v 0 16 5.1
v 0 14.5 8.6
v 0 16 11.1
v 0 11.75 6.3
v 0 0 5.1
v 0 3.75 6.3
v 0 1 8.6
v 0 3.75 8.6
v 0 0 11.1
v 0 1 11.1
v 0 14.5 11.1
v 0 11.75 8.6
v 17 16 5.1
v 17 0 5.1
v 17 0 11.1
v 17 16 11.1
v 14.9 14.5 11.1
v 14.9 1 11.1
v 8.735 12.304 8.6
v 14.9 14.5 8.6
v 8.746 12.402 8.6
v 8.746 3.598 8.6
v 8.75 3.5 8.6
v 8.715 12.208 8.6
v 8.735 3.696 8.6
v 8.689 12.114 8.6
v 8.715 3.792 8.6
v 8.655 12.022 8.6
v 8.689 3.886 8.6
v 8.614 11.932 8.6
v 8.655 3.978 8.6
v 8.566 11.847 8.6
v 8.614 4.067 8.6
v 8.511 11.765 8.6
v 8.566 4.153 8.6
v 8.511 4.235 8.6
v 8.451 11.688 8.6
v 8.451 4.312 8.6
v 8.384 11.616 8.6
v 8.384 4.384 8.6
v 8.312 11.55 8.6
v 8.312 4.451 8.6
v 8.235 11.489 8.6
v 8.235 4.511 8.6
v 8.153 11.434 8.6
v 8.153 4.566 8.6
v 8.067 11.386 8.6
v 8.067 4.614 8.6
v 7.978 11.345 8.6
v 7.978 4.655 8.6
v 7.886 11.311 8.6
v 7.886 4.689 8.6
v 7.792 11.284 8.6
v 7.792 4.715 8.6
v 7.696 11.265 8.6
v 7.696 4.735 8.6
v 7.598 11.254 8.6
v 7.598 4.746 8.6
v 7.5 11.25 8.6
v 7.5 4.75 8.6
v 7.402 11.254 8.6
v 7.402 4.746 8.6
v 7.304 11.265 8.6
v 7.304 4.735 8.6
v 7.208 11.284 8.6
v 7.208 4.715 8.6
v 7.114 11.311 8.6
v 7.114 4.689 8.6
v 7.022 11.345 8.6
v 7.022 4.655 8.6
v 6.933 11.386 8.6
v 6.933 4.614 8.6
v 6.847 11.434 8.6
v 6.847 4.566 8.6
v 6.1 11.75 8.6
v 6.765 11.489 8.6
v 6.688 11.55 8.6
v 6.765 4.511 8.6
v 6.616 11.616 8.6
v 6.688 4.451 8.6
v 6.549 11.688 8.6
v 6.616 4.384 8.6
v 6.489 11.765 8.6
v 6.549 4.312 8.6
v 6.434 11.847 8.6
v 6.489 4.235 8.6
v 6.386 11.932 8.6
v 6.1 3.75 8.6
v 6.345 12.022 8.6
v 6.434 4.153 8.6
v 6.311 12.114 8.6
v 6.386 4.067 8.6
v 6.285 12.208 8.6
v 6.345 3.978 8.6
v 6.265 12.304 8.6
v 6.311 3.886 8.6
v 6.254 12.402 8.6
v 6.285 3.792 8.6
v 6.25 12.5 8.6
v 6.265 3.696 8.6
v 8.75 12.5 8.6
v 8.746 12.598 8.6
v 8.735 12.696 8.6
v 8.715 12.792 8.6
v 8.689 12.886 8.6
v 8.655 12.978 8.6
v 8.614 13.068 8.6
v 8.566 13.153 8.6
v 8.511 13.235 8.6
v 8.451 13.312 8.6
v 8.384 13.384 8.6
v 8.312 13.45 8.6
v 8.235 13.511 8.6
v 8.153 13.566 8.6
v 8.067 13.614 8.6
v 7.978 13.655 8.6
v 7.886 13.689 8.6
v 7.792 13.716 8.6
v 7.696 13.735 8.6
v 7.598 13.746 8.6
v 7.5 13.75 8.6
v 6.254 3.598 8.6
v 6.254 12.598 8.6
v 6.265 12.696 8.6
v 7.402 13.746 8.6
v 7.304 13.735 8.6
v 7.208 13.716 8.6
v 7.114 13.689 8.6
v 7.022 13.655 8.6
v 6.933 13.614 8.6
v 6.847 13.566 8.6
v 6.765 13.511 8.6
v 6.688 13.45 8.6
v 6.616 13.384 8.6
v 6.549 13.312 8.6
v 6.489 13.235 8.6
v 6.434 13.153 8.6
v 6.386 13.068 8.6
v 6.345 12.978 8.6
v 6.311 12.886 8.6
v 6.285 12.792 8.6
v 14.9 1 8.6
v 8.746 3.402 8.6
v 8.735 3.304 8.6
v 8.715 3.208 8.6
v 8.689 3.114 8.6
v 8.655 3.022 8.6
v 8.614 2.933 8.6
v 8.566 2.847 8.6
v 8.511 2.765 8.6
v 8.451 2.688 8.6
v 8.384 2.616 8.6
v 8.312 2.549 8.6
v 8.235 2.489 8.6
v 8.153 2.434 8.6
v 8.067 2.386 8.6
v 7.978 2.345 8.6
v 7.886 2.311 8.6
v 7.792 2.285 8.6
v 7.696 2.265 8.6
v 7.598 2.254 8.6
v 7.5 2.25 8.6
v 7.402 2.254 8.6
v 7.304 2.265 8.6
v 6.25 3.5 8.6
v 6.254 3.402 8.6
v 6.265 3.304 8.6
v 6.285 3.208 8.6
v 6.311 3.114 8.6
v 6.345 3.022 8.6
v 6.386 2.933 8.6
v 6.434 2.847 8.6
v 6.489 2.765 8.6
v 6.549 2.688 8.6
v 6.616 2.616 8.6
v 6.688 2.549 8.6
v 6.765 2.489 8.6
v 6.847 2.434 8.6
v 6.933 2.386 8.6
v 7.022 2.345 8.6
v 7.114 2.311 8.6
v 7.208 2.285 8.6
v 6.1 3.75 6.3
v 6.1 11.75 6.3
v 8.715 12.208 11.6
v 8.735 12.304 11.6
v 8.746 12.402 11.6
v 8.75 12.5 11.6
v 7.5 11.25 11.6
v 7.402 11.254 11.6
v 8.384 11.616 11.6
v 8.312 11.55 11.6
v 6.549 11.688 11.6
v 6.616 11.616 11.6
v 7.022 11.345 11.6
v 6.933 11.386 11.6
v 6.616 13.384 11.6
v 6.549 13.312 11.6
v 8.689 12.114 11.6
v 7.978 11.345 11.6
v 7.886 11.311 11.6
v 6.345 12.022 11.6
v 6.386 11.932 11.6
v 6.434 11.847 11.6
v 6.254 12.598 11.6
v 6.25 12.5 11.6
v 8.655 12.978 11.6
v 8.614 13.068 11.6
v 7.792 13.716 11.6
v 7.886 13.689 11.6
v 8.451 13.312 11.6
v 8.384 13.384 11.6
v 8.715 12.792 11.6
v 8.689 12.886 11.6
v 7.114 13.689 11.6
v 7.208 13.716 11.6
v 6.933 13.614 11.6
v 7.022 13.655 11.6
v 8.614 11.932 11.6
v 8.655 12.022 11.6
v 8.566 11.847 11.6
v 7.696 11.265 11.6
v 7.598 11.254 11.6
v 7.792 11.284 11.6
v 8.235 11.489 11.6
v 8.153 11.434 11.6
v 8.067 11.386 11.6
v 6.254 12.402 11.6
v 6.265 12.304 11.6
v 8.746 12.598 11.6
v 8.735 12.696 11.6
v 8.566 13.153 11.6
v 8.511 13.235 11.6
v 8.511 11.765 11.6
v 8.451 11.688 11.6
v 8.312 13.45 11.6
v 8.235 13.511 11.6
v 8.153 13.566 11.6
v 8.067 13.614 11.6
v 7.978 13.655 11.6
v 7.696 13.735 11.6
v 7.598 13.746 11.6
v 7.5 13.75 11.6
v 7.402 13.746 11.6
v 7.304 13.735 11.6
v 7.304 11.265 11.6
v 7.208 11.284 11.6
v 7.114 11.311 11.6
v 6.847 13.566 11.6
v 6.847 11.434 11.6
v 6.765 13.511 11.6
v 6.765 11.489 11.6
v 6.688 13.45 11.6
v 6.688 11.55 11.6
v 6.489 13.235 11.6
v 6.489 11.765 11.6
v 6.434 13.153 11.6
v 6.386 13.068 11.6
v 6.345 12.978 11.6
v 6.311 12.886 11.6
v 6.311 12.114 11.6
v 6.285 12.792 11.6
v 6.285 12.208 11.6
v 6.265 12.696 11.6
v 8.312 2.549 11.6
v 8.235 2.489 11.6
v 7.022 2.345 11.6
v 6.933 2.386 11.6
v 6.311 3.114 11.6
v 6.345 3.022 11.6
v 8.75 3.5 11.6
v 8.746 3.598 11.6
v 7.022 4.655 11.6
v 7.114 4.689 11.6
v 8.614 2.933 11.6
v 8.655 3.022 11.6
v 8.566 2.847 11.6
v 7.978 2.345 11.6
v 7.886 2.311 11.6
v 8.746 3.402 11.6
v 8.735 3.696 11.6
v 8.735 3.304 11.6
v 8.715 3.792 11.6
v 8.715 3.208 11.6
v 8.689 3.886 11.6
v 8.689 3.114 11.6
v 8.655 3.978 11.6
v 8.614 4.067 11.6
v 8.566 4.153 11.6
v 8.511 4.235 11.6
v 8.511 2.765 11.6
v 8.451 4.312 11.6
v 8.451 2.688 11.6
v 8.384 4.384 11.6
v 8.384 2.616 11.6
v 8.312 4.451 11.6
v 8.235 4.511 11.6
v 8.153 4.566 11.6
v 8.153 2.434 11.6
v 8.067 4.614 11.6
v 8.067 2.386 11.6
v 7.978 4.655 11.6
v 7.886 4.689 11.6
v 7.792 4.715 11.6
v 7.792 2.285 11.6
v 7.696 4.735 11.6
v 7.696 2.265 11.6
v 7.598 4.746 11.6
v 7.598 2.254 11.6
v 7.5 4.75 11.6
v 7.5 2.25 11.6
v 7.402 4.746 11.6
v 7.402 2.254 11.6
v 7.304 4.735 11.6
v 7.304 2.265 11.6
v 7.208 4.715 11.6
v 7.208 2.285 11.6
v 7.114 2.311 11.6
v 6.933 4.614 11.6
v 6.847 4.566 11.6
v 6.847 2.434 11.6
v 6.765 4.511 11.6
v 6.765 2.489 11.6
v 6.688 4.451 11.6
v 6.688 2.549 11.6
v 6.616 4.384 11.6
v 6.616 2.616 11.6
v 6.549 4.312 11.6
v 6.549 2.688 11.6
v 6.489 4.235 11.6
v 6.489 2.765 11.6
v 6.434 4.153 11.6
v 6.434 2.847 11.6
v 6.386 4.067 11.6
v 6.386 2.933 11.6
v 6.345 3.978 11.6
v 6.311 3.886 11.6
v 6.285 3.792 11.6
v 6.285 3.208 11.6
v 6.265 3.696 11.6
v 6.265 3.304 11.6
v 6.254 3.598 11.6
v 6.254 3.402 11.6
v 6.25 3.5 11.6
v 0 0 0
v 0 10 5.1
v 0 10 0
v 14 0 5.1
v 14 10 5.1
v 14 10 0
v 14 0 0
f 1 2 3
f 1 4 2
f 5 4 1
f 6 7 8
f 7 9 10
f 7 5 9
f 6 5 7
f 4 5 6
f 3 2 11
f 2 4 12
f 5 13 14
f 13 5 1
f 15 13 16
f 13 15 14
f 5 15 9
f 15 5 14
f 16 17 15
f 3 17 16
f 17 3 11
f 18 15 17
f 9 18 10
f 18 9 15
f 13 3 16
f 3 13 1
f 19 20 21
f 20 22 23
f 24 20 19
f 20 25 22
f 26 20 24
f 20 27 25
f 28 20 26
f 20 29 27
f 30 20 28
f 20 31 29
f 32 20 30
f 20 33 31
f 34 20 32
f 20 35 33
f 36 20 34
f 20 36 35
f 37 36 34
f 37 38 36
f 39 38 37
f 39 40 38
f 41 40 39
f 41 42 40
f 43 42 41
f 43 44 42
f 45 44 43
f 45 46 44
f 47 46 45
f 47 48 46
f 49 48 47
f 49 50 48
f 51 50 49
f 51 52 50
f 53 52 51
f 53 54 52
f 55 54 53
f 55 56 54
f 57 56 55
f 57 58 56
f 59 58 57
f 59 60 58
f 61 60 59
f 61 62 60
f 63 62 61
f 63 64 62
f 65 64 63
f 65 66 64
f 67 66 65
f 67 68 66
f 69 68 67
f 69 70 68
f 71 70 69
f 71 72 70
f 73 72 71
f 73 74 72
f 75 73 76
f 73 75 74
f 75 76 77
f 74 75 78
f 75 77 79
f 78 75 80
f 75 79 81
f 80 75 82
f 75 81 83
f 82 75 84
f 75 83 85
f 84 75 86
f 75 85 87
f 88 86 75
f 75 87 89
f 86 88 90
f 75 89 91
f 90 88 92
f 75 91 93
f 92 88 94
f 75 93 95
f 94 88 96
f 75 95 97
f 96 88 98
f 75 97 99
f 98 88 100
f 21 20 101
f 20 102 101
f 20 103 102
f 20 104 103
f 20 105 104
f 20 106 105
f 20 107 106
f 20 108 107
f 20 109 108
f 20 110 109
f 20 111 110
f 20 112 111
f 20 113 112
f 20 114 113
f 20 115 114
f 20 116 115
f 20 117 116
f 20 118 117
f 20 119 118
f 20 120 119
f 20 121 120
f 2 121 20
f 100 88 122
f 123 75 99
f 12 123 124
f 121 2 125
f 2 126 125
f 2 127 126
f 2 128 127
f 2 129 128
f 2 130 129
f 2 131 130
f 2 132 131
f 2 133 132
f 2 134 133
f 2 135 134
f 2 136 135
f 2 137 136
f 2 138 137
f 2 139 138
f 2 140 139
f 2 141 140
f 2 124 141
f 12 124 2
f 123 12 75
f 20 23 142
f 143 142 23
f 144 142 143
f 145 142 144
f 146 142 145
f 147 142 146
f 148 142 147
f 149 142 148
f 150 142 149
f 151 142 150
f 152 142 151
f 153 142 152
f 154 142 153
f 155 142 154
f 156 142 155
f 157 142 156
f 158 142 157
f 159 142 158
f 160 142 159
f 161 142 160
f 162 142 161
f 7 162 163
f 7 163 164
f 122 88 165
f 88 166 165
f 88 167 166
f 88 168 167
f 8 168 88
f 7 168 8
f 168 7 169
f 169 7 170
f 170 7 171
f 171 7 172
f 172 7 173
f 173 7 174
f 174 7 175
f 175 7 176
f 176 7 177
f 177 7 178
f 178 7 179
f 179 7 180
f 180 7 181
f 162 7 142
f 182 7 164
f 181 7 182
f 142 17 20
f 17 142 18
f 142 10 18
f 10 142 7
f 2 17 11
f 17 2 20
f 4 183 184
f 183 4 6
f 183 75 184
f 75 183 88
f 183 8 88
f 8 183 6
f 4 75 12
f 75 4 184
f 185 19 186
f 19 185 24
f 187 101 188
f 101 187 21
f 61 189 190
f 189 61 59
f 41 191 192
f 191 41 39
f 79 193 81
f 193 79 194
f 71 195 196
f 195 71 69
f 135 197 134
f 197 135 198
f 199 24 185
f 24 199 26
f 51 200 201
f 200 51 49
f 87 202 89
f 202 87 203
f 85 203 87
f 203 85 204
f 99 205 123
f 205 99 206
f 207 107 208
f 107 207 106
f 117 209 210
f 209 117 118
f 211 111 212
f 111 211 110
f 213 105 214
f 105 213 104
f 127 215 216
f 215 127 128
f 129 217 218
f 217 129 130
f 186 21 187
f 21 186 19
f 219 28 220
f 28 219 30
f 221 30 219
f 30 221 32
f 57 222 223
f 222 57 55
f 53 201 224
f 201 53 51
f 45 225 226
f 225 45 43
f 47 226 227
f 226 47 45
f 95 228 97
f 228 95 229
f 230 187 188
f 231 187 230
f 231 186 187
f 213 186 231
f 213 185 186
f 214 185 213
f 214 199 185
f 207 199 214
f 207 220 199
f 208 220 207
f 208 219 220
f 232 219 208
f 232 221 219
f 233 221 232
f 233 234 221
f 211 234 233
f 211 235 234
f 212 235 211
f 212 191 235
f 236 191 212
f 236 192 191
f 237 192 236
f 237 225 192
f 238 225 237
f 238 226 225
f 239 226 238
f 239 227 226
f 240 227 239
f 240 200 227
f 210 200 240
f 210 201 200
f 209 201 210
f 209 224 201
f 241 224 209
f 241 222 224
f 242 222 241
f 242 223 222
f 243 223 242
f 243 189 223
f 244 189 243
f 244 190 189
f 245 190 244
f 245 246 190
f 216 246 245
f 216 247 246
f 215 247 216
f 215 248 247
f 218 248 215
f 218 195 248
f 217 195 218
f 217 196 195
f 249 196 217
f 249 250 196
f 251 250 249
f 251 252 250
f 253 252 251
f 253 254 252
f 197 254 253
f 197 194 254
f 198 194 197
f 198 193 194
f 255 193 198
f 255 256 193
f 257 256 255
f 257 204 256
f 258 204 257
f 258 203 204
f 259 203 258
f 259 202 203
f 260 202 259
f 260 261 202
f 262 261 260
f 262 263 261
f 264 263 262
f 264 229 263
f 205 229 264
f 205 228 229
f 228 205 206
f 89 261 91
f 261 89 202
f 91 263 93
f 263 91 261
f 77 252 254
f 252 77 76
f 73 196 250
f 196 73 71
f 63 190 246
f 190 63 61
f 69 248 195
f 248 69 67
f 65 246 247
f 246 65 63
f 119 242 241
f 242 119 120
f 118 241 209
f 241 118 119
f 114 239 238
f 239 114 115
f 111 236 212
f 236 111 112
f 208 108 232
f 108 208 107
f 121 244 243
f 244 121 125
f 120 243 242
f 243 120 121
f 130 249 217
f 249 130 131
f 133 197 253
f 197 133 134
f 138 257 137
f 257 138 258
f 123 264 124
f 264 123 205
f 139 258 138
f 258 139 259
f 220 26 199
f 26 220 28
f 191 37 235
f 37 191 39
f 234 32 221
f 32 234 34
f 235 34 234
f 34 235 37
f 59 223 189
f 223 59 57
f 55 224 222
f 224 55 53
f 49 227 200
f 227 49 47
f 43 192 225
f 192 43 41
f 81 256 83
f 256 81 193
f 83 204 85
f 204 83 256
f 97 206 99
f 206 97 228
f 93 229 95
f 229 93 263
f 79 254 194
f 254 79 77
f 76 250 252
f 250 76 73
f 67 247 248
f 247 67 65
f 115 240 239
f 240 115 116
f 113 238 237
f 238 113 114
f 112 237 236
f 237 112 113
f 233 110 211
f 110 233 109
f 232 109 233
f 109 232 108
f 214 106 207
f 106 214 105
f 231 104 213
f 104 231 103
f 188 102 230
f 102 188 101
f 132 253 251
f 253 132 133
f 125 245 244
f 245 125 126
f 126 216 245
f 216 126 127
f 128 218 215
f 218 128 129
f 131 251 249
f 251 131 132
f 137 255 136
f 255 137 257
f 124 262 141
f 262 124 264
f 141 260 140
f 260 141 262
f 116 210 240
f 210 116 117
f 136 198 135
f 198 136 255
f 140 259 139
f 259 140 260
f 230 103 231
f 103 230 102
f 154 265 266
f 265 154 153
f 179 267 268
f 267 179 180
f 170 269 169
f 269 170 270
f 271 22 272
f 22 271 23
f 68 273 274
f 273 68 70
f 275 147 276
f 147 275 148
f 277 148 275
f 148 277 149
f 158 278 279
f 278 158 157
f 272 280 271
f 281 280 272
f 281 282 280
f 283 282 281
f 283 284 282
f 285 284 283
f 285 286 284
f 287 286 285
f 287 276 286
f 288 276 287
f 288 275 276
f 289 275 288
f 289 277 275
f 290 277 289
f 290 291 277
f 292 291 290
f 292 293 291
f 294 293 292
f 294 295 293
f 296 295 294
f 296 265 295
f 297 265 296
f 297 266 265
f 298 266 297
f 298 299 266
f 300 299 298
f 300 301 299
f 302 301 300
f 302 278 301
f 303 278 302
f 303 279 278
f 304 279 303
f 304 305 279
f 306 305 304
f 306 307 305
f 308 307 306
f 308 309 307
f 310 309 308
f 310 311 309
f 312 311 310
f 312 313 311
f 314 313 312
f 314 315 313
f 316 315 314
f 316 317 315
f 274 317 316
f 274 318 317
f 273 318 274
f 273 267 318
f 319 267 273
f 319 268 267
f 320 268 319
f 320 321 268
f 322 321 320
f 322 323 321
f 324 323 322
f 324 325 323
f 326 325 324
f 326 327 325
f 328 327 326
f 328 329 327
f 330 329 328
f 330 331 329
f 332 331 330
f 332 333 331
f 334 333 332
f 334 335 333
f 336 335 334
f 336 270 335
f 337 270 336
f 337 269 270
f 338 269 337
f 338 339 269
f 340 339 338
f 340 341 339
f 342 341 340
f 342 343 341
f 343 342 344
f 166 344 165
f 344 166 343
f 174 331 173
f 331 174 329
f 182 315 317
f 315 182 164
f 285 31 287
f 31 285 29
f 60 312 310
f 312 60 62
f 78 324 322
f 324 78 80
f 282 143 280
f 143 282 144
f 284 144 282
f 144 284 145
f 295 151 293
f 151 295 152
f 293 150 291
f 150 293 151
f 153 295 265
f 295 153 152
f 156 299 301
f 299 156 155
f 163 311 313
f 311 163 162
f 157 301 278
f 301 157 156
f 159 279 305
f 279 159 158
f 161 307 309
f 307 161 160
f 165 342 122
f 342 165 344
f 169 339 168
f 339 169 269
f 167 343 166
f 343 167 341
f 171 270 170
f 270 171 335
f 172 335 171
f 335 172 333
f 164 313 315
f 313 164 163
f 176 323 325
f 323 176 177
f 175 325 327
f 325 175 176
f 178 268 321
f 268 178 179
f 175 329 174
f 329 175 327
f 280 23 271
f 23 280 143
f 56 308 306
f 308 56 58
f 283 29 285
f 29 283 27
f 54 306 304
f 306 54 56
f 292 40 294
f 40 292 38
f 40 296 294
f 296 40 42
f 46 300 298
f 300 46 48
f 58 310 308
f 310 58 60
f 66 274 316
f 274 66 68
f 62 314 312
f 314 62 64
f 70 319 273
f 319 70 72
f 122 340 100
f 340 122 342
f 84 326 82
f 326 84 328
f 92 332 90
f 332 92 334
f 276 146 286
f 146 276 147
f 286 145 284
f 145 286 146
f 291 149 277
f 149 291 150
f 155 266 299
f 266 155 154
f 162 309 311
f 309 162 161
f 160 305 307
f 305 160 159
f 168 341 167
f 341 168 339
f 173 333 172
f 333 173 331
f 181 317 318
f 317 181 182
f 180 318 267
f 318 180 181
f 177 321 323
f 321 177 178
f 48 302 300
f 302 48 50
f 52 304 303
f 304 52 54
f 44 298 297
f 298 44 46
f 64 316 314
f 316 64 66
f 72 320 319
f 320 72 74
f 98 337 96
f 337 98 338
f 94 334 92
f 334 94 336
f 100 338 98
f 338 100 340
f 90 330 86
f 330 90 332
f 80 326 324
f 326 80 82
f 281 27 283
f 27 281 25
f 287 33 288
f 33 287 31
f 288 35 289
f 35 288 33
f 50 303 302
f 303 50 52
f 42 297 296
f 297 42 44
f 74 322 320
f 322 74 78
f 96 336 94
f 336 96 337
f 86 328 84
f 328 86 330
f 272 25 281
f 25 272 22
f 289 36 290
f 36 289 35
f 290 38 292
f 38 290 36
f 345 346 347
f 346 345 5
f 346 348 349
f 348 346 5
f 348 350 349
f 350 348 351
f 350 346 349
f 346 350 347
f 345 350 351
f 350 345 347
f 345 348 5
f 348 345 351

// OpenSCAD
// file: hggh/mico_usb_breakout_holder.scad
USB_PCB_SIZE_X = 14.9;
USB_PCB_SIZE_Y = 13.5;
USB_PCB_SIZE_Z =  2.5;

USB_CONN_X = 6.1;
USB_CONN_Y = 8.0;
USB_CONN_Z = 2.3;

module mico_usb_breakout_holder() {
    union() {
        difference() {
            translate([0, -1.5, 0]) cube([17, 16, 6]);
            translate([-0.1, 0, -0.1]) {
                cube([USB_PCB_SIZE_X + 0.1, USB_PCB_SIZE_Y, USB_PCB_SIZE_Z + 0.1]);
            }
            BOX_A = USB_PCB_SIZE_Y / 2 - USB_CONN_Y /2;
            translate([-0.1, BOX_A, USB_PCB_SIZE_Z - 0.1]) {
                cube([USB_CONN_X + 0.1, USB_CONN_Y, USB_CONN_Z + 0.1]);
            }
        }
        translate([7.5, 2, -0.5]) {
            cylinder(d=2.5, h=4, $fn=80);
        }
        translate([7.5, USB_PCB_SIZE_Y - 2.5, -0.5]) {
            cylinder(d=2.5, h=4, $fn=80);
        }
    }
}
// main file
use <hggh/mico_usb_breakout_holder.scad>


cube([14, 10, 5.1]);
translate([0, 14.5, 5.1 + 6]) { 
    rotate([180, 0, 0]) mico_usb_breakout_holder();
}
